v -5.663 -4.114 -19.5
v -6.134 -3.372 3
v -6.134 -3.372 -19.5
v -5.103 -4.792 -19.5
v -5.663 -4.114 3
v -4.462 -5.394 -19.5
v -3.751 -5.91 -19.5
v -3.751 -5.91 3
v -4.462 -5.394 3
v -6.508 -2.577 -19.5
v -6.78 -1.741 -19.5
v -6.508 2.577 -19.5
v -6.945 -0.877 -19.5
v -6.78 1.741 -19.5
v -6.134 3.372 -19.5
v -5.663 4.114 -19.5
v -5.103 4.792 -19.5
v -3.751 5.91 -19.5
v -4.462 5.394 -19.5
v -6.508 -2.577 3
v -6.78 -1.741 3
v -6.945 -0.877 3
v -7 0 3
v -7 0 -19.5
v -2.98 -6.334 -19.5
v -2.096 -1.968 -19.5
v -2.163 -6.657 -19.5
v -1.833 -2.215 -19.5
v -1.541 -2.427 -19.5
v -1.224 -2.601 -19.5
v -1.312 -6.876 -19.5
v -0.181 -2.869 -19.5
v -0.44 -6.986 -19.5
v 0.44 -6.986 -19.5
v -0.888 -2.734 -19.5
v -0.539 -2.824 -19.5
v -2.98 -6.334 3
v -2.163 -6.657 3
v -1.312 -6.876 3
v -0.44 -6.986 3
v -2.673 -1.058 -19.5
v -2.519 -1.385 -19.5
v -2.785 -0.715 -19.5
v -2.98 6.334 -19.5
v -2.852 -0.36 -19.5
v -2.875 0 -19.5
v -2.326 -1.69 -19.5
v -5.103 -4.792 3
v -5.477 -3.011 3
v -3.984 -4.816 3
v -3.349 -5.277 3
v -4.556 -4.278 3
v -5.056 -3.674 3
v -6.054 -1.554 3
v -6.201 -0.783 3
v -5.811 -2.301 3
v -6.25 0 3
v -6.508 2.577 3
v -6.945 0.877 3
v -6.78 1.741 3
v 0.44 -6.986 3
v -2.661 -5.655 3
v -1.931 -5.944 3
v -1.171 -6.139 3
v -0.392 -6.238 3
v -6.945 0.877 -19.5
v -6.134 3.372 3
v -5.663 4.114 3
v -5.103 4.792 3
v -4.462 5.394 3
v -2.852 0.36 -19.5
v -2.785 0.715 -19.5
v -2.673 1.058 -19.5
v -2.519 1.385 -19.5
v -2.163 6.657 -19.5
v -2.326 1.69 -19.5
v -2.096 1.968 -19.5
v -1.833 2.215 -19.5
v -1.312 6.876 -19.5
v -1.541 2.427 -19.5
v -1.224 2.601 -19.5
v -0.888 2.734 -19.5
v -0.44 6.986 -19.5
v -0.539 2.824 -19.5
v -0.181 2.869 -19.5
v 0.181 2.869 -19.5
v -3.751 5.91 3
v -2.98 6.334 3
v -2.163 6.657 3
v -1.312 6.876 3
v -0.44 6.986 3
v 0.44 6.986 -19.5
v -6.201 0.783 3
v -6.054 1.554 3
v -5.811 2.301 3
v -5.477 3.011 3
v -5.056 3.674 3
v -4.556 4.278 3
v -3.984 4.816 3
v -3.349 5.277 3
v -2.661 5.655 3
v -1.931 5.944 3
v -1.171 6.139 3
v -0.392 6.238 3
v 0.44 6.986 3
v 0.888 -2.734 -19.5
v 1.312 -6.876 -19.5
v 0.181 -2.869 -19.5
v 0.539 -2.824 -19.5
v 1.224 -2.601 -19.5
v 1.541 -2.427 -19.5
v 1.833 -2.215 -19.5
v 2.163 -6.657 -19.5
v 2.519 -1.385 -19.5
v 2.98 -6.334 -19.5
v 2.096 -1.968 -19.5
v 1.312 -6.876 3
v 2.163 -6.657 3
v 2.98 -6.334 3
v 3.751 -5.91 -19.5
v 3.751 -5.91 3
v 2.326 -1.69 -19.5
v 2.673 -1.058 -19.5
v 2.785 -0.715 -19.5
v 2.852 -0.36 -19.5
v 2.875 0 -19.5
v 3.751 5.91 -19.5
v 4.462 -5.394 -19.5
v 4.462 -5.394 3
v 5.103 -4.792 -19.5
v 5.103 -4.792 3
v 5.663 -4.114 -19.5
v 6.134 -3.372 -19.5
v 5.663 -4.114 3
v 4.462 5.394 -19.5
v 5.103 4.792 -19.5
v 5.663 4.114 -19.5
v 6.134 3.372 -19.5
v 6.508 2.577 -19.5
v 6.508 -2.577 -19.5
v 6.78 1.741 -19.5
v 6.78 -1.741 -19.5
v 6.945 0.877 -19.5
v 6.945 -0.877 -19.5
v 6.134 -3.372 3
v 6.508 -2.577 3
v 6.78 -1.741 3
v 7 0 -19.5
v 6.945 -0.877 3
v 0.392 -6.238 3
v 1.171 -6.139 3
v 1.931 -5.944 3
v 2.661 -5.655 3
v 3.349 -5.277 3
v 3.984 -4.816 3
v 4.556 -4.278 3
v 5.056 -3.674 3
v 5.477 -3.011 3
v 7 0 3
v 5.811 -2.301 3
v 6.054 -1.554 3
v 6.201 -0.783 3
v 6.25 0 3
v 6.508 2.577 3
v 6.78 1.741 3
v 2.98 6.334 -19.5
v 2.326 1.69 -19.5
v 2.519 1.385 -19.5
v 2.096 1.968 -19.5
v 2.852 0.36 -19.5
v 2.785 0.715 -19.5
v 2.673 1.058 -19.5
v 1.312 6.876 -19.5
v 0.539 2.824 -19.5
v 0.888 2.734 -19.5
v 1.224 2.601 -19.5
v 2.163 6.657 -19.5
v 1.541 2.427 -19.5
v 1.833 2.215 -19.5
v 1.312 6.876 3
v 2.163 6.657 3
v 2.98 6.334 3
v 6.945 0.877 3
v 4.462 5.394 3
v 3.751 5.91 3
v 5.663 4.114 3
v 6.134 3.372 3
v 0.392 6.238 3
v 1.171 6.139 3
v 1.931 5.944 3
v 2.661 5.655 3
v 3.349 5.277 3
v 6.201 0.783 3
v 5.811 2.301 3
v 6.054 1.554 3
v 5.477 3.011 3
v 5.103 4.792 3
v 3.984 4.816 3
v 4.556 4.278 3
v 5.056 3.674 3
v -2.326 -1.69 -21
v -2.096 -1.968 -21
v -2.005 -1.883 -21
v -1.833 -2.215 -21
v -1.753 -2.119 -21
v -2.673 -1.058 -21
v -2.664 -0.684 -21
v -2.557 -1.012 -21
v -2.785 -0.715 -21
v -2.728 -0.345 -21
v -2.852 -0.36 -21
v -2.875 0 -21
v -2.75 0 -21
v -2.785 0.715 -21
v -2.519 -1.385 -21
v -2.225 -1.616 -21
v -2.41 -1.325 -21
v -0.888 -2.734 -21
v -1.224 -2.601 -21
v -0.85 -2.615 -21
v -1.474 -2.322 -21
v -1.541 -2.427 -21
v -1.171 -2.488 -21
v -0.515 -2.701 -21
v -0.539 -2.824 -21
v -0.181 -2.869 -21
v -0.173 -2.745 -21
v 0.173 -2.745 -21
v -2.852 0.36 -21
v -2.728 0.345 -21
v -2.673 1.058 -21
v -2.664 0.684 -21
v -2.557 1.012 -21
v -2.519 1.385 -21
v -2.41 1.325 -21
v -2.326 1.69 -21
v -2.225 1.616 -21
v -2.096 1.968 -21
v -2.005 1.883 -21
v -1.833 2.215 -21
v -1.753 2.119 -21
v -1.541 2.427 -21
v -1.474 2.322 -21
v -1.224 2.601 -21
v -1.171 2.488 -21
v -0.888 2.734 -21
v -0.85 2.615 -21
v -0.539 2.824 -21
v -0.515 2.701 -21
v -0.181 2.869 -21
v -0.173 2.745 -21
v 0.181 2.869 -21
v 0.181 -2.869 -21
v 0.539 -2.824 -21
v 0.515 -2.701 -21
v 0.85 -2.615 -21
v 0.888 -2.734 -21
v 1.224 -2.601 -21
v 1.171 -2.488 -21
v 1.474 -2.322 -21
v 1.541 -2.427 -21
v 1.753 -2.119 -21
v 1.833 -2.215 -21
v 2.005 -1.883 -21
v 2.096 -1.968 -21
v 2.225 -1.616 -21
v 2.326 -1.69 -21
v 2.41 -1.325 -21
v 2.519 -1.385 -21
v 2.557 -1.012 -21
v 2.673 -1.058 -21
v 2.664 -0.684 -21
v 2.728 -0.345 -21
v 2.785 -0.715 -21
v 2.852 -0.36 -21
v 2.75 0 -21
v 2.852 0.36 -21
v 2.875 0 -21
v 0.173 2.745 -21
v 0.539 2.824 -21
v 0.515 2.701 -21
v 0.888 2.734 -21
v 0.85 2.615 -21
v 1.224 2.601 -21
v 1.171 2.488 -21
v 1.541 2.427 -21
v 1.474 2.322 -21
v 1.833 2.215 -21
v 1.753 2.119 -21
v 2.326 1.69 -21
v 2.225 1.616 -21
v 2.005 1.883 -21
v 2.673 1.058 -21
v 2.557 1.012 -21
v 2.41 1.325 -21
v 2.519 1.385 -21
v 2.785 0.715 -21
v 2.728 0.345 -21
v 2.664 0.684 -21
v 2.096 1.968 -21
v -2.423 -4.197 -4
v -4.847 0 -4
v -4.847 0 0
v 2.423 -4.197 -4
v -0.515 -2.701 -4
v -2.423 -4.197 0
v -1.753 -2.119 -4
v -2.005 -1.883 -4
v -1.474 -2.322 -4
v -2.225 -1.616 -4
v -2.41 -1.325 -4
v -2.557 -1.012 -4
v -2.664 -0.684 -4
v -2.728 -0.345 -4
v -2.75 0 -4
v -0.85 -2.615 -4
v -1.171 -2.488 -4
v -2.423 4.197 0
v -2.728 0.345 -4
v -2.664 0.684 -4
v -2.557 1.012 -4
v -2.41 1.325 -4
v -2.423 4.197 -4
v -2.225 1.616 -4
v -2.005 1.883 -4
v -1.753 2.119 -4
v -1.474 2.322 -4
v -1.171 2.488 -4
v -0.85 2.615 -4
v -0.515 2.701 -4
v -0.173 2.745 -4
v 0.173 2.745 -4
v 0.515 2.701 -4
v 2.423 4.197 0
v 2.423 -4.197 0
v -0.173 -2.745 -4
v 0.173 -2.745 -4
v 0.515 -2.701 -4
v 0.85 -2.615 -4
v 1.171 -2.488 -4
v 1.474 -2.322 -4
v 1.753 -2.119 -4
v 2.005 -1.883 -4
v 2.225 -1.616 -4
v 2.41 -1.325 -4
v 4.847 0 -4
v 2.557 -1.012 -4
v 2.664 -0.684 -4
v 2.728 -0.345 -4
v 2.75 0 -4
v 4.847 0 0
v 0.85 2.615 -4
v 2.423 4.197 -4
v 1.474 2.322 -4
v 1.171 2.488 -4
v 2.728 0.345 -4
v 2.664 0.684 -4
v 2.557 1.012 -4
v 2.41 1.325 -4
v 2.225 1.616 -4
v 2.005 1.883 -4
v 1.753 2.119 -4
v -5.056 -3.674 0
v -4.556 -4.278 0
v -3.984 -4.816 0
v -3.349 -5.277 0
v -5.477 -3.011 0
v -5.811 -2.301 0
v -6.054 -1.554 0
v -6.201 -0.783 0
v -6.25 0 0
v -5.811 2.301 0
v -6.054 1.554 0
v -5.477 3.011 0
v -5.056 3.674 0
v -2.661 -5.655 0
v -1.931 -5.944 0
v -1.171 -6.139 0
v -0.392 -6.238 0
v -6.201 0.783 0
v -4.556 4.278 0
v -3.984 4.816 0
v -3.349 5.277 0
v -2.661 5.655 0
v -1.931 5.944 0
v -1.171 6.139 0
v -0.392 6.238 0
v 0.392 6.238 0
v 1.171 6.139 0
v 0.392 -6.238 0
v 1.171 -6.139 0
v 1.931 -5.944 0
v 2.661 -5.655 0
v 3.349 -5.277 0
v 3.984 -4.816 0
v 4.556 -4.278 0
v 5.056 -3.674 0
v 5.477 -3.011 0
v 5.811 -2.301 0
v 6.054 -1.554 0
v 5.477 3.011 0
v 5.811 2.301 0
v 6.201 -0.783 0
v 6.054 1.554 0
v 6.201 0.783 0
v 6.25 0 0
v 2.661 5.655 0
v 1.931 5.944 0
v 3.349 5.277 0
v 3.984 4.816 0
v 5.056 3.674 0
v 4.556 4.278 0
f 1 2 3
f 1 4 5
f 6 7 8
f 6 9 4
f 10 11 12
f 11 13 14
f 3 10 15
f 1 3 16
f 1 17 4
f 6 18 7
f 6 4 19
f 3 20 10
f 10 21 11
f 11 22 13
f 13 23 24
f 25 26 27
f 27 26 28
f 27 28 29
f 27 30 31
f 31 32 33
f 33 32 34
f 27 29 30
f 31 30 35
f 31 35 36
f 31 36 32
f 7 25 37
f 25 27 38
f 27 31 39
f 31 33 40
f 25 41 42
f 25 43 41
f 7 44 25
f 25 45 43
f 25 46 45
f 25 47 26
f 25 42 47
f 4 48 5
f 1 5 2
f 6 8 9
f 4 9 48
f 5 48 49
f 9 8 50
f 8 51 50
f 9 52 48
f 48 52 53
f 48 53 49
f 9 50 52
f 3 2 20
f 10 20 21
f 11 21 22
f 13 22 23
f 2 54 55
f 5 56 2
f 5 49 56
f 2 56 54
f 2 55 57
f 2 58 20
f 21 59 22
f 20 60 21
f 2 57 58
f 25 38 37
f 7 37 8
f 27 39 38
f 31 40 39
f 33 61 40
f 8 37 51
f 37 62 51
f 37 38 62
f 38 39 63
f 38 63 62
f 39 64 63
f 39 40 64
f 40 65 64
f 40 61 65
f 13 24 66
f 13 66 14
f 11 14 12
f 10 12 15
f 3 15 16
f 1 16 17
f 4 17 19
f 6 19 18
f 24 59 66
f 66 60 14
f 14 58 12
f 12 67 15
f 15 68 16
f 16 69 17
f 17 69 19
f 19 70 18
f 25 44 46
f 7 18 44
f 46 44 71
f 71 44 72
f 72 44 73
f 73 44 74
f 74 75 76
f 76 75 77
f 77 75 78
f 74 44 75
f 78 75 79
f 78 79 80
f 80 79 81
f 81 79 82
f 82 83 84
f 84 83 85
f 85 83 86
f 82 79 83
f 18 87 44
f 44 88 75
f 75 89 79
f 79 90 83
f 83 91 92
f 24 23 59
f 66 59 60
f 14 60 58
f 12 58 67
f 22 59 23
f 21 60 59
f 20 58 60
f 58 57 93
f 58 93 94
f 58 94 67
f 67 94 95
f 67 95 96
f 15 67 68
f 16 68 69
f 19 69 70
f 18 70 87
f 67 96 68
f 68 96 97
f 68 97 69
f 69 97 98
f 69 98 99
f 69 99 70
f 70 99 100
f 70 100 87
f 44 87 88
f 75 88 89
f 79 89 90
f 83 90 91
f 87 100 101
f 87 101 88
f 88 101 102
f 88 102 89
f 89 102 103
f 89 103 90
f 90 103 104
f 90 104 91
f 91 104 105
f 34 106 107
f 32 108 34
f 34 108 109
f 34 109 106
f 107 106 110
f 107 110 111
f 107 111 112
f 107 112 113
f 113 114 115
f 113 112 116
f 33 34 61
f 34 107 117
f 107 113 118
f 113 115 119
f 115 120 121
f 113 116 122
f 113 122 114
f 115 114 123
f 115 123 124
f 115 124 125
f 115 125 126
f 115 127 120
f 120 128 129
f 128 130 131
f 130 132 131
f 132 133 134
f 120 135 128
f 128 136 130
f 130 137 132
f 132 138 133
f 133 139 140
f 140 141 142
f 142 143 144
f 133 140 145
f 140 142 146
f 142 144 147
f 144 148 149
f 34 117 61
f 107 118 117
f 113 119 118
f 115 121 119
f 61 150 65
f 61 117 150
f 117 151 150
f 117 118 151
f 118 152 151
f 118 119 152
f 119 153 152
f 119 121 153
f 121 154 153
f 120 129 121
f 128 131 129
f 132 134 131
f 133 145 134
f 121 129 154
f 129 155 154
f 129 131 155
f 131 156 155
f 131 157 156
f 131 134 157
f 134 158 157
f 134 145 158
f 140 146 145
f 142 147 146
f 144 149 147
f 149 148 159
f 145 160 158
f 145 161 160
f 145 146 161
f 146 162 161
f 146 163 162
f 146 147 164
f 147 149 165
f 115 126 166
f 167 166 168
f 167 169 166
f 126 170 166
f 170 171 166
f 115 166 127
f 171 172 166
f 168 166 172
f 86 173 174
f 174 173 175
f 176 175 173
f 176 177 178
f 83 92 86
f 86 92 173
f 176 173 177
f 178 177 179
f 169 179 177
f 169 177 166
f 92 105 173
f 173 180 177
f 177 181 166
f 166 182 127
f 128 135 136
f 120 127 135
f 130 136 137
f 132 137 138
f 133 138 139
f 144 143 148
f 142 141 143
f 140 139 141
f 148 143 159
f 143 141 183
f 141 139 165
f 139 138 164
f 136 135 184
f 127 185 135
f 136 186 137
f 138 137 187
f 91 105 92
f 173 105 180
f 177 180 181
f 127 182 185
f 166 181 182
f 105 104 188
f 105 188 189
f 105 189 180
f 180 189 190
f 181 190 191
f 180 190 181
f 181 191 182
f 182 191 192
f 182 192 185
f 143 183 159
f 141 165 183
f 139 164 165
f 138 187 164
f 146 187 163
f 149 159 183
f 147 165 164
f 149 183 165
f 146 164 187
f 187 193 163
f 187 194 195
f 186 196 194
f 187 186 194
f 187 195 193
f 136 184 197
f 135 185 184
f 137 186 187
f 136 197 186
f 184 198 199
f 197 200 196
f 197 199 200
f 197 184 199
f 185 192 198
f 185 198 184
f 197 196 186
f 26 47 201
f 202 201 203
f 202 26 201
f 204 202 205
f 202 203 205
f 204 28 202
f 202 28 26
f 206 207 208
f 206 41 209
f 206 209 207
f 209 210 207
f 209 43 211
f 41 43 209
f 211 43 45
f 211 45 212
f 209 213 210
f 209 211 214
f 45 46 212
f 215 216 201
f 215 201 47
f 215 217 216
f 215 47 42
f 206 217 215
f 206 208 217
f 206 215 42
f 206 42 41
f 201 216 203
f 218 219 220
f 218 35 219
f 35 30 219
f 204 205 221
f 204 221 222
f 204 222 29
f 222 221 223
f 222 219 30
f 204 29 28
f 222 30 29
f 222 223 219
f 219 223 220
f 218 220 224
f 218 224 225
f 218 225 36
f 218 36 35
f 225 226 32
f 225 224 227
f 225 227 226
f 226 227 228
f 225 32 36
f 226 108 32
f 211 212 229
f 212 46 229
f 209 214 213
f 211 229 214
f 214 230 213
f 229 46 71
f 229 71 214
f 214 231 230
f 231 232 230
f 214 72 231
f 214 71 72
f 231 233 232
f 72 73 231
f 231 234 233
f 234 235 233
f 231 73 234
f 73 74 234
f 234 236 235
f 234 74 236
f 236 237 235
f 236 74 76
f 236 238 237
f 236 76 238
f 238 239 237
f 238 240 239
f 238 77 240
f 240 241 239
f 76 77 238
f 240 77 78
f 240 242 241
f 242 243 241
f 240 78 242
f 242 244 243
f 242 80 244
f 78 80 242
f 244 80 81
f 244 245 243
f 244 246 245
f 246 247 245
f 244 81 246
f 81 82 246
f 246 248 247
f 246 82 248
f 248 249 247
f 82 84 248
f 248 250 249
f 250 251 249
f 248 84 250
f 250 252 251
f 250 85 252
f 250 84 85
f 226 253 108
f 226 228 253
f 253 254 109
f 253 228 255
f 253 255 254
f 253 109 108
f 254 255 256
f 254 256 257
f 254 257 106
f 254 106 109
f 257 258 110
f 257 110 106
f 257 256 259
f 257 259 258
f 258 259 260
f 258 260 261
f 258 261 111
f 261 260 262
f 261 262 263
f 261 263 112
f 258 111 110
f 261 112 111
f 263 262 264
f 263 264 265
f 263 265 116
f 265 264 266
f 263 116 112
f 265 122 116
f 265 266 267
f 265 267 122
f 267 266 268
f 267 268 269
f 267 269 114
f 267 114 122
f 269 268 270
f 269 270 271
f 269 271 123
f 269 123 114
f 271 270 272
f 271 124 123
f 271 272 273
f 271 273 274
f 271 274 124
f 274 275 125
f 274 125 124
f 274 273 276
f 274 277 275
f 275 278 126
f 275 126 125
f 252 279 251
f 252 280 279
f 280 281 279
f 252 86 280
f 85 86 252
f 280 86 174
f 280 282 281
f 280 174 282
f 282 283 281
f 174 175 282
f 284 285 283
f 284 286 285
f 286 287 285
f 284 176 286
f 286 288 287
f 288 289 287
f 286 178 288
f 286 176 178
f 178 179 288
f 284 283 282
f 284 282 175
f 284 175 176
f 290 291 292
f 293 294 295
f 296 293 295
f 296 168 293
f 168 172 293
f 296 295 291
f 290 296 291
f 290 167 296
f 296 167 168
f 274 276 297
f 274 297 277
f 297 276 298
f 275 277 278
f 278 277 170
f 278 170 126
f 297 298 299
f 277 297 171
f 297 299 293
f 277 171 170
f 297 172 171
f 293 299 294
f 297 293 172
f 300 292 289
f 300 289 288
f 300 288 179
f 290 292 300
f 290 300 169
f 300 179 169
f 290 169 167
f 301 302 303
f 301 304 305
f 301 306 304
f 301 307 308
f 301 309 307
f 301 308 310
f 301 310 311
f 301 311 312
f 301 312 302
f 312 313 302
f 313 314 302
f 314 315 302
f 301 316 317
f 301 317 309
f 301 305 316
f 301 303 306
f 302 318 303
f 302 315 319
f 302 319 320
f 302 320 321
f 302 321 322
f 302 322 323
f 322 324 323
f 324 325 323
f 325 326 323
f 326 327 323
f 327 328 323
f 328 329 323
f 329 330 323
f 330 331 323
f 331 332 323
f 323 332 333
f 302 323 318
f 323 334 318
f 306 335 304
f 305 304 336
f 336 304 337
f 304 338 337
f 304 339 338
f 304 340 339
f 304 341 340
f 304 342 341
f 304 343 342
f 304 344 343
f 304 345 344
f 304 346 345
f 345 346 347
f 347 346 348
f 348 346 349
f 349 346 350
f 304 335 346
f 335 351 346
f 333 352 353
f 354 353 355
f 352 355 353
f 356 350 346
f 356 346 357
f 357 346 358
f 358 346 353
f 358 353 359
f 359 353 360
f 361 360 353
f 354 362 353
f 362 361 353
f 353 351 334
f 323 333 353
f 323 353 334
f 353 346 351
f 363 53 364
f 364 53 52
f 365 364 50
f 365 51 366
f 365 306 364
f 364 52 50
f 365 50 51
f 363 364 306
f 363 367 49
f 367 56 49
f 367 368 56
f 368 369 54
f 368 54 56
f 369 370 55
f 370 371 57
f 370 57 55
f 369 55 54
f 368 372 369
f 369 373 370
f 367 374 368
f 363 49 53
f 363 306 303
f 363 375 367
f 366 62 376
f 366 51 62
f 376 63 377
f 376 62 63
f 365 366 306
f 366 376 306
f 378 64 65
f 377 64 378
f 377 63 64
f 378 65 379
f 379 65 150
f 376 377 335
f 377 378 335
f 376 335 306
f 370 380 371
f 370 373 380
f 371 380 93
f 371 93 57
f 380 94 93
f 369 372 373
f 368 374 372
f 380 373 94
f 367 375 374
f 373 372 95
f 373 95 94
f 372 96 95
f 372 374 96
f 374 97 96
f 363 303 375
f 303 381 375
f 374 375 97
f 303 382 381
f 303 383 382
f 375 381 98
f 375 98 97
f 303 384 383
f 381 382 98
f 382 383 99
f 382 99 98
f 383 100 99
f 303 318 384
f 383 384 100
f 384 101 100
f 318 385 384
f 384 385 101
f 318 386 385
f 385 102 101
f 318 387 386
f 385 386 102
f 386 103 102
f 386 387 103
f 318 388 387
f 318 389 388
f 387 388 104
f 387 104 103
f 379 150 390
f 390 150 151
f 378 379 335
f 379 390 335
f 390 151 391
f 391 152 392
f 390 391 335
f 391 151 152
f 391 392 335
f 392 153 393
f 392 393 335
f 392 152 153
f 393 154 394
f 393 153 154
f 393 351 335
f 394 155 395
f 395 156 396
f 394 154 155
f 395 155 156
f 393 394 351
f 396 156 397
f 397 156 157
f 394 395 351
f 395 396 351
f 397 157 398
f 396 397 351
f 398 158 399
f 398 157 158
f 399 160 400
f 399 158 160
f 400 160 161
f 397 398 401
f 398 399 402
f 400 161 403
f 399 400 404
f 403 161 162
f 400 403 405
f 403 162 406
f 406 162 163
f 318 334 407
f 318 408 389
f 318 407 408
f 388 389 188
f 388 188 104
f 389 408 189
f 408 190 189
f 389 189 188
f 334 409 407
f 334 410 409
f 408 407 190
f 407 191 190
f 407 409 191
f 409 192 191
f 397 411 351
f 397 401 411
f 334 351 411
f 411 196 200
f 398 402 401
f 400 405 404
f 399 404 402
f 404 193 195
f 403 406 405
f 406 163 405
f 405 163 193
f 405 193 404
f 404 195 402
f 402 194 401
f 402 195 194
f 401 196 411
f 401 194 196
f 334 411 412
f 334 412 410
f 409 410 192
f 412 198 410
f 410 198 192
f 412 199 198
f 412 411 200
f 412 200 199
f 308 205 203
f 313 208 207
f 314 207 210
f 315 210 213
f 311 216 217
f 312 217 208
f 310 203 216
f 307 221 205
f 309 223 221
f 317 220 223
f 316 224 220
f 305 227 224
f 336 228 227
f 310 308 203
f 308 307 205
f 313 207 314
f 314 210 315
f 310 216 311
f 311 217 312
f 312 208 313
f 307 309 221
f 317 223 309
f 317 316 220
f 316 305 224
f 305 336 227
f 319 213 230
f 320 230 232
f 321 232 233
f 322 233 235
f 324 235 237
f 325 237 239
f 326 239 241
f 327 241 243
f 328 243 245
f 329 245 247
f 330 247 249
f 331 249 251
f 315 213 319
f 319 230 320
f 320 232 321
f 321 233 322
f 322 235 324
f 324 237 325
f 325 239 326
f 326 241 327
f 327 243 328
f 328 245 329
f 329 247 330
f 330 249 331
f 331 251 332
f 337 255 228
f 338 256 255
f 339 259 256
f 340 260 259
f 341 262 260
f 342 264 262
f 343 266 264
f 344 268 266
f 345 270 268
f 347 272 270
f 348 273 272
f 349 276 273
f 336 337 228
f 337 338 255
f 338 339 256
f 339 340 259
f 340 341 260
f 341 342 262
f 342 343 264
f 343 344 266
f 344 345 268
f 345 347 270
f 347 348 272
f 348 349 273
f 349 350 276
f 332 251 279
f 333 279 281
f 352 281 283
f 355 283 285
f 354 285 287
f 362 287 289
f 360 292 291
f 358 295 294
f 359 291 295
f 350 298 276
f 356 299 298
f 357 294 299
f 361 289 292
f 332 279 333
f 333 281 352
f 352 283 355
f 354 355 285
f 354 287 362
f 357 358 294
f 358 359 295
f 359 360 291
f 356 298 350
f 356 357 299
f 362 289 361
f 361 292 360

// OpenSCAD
$fn = 50;

difference() {
	union() {
		translate(v = [0, 0, -19.5]) {
			cylinder(h = 22.5, r = 7.0);
		}
		#translate(v = [0, 0, -21.0]) {
			cylinder(h = 21, r = 2.875);
		}
	}
	union() {
		translate(v = [0, 0, 0]) {
			rotate(a = [0, 0, 0]) {
				difference() {
					union() {
						translate(v = [0, 0, -4]) {
							linear_extrude(height = 4) {
								polygon(points = [[4.8468, 0.0], [2.4234000000000004, 4.197451927062417], [-2.423399999999999, 4.197451927062417], [-4.8468, 5.935618106107392e-16], [-2.423400000000002, -4.197451927062416], [2.423399999999997, -4.197451927062419]]);
							}
						}
					}
					union();
				}
			}
		}
		#cylinder(h = 3, r = 6.25);
		#translate(v = [0, 0, -100.0]) {
			cylinder(h = 200, r = 2.75);
		}
	}
}
